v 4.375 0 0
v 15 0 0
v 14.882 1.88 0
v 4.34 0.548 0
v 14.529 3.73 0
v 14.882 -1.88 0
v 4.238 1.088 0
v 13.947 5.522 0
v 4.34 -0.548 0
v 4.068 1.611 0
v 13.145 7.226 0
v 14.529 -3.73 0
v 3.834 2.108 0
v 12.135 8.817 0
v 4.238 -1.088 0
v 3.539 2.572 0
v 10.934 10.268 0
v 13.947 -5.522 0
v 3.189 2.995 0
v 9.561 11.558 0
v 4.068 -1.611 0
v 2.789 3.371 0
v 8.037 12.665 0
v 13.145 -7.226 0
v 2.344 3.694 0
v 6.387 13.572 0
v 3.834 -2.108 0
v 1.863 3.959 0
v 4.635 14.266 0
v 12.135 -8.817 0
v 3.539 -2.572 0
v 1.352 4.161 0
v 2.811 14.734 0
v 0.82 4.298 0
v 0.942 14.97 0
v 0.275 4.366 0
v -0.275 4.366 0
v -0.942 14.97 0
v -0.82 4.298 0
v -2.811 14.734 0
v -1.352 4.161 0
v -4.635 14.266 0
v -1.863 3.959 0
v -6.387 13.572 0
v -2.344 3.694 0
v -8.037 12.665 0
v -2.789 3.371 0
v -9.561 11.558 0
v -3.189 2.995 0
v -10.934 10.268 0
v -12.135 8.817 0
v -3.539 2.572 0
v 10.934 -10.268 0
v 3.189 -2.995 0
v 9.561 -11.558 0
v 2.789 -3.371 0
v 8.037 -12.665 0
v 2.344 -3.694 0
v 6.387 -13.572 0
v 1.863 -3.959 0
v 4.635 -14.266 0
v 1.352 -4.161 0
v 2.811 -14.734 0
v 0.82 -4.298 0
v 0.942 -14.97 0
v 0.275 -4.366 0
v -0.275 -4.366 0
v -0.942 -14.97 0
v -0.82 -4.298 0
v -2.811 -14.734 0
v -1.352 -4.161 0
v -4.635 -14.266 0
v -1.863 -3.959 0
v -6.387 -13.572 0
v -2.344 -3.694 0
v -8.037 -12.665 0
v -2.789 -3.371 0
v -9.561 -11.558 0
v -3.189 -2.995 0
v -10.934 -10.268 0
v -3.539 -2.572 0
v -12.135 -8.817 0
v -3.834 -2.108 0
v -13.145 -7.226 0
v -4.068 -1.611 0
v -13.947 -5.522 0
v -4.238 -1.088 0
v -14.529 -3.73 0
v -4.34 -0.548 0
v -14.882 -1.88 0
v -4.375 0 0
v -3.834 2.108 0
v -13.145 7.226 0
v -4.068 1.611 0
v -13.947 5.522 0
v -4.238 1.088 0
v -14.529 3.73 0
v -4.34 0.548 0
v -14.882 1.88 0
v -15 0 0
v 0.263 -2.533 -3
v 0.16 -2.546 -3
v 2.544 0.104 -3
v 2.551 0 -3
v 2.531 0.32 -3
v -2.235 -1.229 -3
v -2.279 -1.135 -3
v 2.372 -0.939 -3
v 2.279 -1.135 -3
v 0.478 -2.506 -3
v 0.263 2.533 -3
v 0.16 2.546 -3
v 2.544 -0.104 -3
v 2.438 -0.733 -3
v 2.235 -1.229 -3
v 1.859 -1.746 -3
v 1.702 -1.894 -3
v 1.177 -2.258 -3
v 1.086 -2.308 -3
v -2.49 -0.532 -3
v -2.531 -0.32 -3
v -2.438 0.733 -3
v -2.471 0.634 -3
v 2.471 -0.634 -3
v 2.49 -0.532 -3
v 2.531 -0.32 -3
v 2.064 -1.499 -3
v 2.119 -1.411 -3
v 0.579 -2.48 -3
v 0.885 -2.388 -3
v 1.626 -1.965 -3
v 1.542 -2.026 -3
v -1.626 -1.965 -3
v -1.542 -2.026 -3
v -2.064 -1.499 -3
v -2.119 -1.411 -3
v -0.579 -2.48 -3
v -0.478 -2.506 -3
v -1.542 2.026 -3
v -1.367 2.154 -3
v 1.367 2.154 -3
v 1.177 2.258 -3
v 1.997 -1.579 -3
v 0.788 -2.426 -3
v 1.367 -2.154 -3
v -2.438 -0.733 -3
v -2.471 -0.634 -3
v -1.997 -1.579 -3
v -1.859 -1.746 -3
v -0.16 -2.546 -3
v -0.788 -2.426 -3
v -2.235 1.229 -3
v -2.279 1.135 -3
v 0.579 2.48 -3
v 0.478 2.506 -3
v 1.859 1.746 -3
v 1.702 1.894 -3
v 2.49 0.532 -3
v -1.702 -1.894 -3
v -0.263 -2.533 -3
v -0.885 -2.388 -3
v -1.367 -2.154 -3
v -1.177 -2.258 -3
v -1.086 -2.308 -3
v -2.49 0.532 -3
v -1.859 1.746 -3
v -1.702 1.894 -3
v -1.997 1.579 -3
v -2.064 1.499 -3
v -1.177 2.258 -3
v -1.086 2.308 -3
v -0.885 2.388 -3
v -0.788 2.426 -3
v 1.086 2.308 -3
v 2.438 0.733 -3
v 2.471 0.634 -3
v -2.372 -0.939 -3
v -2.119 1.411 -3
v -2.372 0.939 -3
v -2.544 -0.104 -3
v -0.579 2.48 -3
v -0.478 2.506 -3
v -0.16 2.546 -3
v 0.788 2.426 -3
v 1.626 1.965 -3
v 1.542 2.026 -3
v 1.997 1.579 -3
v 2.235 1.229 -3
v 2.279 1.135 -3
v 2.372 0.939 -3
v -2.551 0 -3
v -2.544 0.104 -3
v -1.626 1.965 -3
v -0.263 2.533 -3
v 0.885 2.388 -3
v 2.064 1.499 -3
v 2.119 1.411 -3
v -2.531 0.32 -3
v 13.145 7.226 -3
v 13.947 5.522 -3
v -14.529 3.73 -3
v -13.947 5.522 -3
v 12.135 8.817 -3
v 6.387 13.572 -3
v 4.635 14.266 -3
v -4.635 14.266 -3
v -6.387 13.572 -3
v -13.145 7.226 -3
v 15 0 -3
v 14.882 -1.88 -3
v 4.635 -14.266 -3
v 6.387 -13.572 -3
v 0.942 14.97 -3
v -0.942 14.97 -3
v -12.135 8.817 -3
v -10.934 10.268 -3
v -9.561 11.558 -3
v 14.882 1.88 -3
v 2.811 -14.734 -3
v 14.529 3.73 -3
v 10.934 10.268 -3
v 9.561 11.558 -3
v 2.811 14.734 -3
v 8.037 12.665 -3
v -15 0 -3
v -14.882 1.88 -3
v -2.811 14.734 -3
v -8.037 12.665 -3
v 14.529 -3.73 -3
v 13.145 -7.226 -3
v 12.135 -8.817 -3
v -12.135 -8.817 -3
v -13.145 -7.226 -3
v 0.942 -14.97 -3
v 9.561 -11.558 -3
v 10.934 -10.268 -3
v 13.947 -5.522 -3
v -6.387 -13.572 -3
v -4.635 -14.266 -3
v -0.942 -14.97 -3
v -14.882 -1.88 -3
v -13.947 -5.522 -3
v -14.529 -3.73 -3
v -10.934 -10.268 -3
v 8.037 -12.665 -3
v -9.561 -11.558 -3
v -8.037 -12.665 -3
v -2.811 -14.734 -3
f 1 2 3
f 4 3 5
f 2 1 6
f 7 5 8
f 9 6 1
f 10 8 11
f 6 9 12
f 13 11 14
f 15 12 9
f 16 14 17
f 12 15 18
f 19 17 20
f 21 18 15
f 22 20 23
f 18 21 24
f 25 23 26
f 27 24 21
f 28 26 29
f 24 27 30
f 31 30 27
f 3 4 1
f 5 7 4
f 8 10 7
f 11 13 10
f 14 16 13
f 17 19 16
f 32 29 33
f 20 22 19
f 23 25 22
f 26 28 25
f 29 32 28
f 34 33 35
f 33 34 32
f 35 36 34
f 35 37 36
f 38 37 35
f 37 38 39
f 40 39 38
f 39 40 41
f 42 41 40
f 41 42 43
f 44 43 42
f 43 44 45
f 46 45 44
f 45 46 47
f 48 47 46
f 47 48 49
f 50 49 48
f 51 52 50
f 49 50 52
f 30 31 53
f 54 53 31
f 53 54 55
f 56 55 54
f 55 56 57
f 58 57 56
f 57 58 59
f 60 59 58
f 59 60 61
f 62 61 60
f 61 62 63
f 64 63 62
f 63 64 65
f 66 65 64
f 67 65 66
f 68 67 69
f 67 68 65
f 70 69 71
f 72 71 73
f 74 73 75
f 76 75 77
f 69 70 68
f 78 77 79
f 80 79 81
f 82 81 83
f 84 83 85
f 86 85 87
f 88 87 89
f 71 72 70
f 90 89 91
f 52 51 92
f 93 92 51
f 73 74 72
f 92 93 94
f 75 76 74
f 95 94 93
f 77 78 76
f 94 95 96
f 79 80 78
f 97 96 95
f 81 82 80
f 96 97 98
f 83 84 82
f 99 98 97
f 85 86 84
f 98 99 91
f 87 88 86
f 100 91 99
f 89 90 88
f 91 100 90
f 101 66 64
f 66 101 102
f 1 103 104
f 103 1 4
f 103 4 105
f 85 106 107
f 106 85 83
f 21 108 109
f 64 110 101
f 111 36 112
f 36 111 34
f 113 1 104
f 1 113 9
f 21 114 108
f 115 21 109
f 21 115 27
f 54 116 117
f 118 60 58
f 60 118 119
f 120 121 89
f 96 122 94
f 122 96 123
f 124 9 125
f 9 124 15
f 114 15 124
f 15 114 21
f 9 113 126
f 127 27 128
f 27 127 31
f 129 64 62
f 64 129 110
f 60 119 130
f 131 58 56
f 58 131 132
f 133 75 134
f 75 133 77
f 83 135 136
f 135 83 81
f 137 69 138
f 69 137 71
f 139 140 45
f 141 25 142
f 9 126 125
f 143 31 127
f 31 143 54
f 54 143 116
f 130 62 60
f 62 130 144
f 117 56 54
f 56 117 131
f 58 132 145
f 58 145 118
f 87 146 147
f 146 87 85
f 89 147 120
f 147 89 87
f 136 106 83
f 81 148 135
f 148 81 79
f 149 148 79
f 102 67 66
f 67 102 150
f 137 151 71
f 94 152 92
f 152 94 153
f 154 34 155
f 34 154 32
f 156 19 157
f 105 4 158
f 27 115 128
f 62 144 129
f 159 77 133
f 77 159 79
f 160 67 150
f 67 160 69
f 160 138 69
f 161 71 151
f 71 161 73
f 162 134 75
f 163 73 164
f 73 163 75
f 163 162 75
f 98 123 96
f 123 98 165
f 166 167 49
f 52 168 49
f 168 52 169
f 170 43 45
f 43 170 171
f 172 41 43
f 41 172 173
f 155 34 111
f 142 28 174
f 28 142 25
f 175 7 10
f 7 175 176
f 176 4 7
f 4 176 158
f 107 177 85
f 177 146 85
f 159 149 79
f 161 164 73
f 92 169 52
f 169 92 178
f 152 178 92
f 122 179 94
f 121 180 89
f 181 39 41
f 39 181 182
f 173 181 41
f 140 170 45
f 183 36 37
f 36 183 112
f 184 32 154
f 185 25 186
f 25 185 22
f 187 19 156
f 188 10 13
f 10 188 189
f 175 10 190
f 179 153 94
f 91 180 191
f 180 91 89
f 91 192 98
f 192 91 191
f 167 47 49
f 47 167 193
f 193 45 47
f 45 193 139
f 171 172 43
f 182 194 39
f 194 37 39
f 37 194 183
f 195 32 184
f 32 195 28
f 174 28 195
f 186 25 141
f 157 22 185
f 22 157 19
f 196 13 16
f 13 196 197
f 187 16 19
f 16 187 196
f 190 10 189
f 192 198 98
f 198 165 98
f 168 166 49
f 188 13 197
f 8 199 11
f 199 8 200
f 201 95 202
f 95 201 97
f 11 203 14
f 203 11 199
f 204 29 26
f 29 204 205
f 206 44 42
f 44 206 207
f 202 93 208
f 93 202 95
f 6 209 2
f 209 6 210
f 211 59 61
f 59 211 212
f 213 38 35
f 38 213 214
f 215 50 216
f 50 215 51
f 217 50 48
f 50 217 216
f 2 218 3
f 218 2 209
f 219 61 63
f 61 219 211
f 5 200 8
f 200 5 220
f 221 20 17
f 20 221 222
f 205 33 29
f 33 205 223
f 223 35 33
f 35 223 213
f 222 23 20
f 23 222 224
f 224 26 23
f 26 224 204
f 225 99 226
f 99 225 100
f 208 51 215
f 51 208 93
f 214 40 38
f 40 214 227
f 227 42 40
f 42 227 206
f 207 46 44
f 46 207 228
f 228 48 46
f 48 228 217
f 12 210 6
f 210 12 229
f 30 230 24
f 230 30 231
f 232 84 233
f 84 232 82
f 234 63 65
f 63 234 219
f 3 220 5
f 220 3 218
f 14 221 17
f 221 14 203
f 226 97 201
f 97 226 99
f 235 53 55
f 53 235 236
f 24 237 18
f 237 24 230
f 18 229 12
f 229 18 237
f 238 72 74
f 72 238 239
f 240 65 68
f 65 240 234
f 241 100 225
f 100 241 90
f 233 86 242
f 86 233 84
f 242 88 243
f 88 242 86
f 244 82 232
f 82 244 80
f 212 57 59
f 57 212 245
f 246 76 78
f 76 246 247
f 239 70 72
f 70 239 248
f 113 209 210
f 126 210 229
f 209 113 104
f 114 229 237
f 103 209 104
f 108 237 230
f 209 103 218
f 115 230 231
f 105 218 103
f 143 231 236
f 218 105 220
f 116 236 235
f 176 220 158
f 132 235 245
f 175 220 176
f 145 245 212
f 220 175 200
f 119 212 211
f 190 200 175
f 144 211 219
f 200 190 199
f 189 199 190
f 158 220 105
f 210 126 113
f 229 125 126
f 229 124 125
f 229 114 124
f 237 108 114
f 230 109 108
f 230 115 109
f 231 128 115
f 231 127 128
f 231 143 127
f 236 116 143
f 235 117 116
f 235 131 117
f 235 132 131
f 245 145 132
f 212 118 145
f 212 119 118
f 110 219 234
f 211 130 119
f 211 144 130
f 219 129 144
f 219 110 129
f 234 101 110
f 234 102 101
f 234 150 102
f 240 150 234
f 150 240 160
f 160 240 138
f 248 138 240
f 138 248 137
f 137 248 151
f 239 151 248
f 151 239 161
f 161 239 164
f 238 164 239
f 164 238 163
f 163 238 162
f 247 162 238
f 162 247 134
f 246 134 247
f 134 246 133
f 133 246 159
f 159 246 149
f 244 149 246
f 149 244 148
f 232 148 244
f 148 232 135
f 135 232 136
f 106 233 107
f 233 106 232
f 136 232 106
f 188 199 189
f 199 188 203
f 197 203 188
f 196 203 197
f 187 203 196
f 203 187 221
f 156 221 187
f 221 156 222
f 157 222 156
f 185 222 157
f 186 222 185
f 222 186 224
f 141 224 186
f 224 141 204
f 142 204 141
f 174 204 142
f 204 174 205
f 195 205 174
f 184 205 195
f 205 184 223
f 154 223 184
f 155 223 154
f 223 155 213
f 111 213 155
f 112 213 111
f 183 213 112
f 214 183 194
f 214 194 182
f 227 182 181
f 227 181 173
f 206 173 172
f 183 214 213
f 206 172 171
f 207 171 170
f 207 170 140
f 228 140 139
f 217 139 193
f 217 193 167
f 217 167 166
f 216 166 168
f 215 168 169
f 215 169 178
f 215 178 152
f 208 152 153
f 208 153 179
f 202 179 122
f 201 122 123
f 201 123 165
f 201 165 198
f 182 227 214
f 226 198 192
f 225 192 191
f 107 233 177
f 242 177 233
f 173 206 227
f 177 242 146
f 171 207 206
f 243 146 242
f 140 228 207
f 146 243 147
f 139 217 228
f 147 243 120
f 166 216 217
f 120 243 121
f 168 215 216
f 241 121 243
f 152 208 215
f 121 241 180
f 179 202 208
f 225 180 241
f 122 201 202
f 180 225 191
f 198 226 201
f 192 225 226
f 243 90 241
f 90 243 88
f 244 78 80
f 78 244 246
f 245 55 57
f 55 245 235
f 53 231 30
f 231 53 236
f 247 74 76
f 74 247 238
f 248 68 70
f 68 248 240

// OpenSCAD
$fn = 50;


difference() {
	union() {
		translate(v = [0, 0, -3.0000000000]) {
			cylinder(h = 3, r = 15.0000000000);
		}
	}
	union() {
		translate(v = [0, 0, 0]) {
			rotate(a = [0, 0, 0]) {
				difference() {
					union() {
						translate(v = [0, 0, -6.0000000000]) {
							cylinder(h = 6, r = 2.0000000000);
						}
						translate(v = [0, 0, -3.7000000000]) {
							cylinder(h = 3.7000000000, r1 = 2.1250000000, r2 = 4.3750000000);
						}
						translate(v = [0, 0, -6.0000000000]) {
							cylinder(h = 6, r = 2.1250000000);
						}
						translate(v = [0, 0, -6.0000000000]) {
							cylinder(h = 6, r = 2.0000000000);
						}
					}
					union();
				}
			}
		}
	}
}
